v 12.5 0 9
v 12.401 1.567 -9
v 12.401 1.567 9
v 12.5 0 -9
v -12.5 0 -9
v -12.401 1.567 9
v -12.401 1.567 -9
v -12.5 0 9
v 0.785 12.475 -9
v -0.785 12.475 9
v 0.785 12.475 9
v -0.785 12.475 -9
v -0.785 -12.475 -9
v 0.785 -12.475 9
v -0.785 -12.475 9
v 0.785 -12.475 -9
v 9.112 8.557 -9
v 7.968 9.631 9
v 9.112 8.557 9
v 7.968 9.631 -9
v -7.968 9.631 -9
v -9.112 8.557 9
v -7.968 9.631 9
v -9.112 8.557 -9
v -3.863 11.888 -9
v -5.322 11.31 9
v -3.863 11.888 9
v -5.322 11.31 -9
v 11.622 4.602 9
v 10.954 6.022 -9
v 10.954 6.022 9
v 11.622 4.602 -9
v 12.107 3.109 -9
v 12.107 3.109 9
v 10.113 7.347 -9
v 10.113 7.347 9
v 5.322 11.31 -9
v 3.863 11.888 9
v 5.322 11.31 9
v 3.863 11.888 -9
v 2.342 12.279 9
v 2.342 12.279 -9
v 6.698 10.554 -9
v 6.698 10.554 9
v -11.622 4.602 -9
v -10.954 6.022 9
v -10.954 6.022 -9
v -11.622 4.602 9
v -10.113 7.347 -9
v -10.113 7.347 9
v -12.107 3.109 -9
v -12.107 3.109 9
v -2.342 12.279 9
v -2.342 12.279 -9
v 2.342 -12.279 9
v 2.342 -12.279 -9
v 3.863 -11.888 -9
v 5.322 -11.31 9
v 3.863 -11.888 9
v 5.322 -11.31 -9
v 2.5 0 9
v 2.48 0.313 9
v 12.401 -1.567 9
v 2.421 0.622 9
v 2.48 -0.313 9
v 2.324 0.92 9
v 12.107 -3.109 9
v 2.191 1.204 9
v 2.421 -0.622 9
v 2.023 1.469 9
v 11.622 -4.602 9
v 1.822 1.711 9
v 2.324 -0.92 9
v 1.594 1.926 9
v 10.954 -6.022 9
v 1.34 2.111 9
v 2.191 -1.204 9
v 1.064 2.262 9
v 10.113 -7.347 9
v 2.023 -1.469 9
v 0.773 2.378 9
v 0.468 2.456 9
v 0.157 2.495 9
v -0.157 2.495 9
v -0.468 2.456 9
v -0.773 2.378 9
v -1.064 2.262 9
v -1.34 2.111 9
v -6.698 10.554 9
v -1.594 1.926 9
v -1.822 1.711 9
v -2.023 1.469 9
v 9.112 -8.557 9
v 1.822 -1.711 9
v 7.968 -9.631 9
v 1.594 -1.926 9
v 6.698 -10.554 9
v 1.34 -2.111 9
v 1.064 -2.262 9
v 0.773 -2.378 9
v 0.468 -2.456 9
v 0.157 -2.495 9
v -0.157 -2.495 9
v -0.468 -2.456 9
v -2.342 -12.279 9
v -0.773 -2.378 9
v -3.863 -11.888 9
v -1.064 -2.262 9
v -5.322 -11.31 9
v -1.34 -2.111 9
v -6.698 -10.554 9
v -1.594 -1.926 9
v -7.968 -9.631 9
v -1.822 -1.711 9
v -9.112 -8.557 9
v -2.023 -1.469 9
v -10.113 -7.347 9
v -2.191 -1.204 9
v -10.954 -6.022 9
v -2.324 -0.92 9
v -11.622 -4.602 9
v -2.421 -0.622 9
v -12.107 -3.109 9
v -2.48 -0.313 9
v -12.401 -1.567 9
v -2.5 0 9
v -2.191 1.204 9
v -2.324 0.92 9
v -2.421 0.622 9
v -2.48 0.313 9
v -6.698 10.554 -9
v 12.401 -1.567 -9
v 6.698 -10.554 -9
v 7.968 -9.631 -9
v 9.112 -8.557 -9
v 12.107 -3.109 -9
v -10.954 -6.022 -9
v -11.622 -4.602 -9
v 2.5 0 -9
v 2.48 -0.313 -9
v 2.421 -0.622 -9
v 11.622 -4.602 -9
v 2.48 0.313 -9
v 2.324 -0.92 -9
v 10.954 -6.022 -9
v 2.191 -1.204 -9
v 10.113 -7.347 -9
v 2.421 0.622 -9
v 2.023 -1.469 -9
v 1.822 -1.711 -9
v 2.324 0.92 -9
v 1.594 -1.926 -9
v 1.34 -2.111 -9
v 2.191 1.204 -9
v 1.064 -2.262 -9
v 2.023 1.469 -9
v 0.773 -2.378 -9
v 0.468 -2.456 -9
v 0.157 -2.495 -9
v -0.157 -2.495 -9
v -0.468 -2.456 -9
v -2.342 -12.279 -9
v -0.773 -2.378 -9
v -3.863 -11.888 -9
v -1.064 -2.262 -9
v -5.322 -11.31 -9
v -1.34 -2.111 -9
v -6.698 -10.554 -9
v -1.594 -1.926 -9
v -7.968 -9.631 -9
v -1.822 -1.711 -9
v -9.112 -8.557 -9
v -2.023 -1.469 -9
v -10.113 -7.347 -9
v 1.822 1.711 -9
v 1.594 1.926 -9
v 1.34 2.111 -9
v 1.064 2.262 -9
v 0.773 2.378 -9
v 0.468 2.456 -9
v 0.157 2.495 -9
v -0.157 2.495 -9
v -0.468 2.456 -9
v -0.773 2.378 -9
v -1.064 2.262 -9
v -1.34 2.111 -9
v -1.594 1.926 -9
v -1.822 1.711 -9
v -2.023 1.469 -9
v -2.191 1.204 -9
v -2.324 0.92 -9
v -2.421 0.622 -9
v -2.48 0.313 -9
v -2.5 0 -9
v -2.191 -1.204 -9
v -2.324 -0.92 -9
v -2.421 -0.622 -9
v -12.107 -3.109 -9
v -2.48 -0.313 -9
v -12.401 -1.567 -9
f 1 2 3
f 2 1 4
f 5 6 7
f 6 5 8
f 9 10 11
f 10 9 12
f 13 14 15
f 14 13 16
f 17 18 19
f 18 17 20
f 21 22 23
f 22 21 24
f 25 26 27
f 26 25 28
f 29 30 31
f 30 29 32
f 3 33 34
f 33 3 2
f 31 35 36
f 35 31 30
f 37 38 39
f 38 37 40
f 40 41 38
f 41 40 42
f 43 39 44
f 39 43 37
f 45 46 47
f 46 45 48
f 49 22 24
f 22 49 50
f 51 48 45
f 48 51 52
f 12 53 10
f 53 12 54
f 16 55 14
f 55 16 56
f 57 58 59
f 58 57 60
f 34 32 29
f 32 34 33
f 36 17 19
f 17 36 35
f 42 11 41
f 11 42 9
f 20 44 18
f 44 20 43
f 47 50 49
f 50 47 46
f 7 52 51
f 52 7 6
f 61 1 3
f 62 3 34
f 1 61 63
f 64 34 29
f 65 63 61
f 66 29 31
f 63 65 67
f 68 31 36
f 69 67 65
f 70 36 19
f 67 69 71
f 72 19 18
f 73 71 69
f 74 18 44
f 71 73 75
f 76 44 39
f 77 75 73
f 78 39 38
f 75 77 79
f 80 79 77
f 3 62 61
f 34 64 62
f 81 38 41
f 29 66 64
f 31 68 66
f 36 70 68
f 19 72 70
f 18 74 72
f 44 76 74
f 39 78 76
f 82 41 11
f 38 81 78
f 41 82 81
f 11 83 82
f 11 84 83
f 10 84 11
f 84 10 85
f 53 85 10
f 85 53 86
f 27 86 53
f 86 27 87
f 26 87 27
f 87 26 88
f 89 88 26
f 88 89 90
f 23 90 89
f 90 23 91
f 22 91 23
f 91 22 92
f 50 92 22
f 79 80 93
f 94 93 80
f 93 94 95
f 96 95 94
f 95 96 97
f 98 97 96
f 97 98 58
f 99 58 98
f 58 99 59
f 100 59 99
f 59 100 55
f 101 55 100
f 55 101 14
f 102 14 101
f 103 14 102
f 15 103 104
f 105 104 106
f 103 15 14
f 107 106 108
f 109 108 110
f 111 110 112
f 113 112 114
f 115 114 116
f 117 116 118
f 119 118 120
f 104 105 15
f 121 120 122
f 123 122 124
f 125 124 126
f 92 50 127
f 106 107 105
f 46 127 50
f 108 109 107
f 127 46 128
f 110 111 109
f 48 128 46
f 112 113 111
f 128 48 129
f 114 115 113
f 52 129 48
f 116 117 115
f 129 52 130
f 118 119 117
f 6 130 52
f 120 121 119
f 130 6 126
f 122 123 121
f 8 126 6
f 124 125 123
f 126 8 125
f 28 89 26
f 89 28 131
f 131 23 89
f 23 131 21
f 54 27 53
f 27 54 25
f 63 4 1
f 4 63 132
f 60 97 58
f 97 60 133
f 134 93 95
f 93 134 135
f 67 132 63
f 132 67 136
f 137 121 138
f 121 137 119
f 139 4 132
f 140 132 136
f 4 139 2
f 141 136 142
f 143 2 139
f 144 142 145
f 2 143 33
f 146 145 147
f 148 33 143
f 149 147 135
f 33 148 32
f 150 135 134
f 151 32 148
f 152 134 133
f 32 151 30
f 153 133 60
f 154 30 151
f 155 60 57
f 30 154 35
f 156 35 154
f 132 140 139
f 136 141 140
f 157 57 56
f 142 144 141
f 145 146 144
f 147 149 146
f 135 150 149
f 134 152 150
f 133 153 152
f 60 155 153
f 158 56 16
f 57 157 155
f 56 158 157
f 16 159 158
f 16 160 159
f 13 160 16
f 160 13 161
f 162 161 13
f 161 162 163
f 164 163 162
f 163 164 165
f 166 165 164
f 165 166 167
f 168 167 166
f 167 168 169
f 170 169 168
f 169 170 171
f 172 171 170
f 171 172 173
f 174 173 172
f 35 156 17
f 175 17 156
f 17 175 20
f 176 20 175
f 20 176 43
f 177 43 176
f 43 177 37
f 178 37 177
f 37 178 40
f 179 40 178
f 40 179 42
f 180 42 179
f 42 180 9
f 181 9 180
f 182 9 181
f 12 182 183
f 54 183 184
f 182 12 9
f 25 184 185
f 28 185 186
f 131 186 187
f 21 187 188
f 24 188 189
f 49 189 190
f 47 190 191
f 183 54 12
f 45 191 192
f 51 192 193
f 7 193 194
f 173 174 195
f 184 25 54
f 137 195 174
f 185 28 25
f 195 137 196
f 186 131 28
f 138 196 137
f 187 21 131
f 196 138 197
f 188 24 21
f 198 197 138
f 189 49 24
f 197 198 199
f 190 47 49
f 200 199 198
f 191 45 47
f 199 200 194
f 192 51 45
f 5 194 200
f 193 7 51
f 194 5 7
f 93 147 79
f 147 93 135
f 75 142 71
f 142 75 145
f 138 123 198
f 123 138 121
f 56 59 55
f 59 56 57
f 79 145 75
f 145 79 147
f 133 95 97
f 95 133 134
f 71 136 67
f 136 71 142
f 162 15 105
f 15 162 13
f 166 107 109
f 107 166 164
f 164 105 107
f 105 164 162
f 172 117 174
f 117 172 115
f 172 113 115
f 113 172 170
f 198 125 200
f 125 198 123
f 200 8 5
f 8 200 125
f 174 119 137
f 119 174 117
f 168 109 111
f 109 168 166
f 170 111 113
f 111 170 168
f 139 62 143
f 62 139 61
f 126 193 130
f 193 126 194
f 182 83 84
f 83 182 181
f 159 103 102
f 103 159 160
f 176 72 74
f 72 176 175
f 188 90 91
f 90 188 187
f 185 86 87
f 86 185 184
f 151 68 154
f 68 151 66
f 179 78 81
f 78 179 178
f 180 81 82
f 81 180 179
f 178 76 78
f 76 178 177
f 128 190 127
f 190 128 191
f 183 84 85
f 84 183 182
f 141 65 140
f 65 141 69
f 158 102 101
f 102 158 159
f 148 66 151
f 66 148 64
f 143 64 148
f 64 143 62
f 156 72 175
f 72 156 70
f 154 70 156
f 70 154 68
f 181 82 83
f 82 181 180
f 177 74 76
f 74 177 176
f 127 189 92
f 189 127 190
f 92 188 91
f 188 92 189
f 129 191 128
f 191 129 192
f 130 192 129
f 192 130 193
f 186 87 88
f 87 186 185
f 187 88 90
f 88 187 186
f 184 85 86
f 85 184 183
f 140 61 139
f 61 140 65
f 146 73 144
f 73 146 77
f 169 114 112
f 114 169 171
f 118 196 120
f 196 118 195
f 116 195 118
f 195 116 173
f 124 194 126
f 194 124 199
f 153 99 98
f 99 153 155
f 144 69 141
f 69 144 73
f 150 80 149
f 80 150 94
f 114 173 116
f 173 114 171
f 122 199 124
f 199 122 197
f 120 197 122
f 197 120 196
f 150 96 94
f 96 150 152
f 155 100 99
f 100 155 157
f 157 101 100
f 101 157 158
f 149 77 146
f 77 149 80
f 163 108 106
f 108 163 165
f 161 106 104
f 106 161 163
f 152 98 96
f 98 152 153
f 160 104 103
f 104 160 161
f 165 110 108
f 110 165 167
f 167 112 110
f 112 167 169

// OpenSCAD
$fn = 50;


difference() {
	union() {
		translate(v = [0, 0, -9.0000000000]) {
			cylinder(h = 18, r = 12.5000000000);
		}
	}
	union() {
		translate(v = [0, 0, -100.0000000000]) {
			cylinder(h = 200, r = 2.5000000000);
		}
	}
}
